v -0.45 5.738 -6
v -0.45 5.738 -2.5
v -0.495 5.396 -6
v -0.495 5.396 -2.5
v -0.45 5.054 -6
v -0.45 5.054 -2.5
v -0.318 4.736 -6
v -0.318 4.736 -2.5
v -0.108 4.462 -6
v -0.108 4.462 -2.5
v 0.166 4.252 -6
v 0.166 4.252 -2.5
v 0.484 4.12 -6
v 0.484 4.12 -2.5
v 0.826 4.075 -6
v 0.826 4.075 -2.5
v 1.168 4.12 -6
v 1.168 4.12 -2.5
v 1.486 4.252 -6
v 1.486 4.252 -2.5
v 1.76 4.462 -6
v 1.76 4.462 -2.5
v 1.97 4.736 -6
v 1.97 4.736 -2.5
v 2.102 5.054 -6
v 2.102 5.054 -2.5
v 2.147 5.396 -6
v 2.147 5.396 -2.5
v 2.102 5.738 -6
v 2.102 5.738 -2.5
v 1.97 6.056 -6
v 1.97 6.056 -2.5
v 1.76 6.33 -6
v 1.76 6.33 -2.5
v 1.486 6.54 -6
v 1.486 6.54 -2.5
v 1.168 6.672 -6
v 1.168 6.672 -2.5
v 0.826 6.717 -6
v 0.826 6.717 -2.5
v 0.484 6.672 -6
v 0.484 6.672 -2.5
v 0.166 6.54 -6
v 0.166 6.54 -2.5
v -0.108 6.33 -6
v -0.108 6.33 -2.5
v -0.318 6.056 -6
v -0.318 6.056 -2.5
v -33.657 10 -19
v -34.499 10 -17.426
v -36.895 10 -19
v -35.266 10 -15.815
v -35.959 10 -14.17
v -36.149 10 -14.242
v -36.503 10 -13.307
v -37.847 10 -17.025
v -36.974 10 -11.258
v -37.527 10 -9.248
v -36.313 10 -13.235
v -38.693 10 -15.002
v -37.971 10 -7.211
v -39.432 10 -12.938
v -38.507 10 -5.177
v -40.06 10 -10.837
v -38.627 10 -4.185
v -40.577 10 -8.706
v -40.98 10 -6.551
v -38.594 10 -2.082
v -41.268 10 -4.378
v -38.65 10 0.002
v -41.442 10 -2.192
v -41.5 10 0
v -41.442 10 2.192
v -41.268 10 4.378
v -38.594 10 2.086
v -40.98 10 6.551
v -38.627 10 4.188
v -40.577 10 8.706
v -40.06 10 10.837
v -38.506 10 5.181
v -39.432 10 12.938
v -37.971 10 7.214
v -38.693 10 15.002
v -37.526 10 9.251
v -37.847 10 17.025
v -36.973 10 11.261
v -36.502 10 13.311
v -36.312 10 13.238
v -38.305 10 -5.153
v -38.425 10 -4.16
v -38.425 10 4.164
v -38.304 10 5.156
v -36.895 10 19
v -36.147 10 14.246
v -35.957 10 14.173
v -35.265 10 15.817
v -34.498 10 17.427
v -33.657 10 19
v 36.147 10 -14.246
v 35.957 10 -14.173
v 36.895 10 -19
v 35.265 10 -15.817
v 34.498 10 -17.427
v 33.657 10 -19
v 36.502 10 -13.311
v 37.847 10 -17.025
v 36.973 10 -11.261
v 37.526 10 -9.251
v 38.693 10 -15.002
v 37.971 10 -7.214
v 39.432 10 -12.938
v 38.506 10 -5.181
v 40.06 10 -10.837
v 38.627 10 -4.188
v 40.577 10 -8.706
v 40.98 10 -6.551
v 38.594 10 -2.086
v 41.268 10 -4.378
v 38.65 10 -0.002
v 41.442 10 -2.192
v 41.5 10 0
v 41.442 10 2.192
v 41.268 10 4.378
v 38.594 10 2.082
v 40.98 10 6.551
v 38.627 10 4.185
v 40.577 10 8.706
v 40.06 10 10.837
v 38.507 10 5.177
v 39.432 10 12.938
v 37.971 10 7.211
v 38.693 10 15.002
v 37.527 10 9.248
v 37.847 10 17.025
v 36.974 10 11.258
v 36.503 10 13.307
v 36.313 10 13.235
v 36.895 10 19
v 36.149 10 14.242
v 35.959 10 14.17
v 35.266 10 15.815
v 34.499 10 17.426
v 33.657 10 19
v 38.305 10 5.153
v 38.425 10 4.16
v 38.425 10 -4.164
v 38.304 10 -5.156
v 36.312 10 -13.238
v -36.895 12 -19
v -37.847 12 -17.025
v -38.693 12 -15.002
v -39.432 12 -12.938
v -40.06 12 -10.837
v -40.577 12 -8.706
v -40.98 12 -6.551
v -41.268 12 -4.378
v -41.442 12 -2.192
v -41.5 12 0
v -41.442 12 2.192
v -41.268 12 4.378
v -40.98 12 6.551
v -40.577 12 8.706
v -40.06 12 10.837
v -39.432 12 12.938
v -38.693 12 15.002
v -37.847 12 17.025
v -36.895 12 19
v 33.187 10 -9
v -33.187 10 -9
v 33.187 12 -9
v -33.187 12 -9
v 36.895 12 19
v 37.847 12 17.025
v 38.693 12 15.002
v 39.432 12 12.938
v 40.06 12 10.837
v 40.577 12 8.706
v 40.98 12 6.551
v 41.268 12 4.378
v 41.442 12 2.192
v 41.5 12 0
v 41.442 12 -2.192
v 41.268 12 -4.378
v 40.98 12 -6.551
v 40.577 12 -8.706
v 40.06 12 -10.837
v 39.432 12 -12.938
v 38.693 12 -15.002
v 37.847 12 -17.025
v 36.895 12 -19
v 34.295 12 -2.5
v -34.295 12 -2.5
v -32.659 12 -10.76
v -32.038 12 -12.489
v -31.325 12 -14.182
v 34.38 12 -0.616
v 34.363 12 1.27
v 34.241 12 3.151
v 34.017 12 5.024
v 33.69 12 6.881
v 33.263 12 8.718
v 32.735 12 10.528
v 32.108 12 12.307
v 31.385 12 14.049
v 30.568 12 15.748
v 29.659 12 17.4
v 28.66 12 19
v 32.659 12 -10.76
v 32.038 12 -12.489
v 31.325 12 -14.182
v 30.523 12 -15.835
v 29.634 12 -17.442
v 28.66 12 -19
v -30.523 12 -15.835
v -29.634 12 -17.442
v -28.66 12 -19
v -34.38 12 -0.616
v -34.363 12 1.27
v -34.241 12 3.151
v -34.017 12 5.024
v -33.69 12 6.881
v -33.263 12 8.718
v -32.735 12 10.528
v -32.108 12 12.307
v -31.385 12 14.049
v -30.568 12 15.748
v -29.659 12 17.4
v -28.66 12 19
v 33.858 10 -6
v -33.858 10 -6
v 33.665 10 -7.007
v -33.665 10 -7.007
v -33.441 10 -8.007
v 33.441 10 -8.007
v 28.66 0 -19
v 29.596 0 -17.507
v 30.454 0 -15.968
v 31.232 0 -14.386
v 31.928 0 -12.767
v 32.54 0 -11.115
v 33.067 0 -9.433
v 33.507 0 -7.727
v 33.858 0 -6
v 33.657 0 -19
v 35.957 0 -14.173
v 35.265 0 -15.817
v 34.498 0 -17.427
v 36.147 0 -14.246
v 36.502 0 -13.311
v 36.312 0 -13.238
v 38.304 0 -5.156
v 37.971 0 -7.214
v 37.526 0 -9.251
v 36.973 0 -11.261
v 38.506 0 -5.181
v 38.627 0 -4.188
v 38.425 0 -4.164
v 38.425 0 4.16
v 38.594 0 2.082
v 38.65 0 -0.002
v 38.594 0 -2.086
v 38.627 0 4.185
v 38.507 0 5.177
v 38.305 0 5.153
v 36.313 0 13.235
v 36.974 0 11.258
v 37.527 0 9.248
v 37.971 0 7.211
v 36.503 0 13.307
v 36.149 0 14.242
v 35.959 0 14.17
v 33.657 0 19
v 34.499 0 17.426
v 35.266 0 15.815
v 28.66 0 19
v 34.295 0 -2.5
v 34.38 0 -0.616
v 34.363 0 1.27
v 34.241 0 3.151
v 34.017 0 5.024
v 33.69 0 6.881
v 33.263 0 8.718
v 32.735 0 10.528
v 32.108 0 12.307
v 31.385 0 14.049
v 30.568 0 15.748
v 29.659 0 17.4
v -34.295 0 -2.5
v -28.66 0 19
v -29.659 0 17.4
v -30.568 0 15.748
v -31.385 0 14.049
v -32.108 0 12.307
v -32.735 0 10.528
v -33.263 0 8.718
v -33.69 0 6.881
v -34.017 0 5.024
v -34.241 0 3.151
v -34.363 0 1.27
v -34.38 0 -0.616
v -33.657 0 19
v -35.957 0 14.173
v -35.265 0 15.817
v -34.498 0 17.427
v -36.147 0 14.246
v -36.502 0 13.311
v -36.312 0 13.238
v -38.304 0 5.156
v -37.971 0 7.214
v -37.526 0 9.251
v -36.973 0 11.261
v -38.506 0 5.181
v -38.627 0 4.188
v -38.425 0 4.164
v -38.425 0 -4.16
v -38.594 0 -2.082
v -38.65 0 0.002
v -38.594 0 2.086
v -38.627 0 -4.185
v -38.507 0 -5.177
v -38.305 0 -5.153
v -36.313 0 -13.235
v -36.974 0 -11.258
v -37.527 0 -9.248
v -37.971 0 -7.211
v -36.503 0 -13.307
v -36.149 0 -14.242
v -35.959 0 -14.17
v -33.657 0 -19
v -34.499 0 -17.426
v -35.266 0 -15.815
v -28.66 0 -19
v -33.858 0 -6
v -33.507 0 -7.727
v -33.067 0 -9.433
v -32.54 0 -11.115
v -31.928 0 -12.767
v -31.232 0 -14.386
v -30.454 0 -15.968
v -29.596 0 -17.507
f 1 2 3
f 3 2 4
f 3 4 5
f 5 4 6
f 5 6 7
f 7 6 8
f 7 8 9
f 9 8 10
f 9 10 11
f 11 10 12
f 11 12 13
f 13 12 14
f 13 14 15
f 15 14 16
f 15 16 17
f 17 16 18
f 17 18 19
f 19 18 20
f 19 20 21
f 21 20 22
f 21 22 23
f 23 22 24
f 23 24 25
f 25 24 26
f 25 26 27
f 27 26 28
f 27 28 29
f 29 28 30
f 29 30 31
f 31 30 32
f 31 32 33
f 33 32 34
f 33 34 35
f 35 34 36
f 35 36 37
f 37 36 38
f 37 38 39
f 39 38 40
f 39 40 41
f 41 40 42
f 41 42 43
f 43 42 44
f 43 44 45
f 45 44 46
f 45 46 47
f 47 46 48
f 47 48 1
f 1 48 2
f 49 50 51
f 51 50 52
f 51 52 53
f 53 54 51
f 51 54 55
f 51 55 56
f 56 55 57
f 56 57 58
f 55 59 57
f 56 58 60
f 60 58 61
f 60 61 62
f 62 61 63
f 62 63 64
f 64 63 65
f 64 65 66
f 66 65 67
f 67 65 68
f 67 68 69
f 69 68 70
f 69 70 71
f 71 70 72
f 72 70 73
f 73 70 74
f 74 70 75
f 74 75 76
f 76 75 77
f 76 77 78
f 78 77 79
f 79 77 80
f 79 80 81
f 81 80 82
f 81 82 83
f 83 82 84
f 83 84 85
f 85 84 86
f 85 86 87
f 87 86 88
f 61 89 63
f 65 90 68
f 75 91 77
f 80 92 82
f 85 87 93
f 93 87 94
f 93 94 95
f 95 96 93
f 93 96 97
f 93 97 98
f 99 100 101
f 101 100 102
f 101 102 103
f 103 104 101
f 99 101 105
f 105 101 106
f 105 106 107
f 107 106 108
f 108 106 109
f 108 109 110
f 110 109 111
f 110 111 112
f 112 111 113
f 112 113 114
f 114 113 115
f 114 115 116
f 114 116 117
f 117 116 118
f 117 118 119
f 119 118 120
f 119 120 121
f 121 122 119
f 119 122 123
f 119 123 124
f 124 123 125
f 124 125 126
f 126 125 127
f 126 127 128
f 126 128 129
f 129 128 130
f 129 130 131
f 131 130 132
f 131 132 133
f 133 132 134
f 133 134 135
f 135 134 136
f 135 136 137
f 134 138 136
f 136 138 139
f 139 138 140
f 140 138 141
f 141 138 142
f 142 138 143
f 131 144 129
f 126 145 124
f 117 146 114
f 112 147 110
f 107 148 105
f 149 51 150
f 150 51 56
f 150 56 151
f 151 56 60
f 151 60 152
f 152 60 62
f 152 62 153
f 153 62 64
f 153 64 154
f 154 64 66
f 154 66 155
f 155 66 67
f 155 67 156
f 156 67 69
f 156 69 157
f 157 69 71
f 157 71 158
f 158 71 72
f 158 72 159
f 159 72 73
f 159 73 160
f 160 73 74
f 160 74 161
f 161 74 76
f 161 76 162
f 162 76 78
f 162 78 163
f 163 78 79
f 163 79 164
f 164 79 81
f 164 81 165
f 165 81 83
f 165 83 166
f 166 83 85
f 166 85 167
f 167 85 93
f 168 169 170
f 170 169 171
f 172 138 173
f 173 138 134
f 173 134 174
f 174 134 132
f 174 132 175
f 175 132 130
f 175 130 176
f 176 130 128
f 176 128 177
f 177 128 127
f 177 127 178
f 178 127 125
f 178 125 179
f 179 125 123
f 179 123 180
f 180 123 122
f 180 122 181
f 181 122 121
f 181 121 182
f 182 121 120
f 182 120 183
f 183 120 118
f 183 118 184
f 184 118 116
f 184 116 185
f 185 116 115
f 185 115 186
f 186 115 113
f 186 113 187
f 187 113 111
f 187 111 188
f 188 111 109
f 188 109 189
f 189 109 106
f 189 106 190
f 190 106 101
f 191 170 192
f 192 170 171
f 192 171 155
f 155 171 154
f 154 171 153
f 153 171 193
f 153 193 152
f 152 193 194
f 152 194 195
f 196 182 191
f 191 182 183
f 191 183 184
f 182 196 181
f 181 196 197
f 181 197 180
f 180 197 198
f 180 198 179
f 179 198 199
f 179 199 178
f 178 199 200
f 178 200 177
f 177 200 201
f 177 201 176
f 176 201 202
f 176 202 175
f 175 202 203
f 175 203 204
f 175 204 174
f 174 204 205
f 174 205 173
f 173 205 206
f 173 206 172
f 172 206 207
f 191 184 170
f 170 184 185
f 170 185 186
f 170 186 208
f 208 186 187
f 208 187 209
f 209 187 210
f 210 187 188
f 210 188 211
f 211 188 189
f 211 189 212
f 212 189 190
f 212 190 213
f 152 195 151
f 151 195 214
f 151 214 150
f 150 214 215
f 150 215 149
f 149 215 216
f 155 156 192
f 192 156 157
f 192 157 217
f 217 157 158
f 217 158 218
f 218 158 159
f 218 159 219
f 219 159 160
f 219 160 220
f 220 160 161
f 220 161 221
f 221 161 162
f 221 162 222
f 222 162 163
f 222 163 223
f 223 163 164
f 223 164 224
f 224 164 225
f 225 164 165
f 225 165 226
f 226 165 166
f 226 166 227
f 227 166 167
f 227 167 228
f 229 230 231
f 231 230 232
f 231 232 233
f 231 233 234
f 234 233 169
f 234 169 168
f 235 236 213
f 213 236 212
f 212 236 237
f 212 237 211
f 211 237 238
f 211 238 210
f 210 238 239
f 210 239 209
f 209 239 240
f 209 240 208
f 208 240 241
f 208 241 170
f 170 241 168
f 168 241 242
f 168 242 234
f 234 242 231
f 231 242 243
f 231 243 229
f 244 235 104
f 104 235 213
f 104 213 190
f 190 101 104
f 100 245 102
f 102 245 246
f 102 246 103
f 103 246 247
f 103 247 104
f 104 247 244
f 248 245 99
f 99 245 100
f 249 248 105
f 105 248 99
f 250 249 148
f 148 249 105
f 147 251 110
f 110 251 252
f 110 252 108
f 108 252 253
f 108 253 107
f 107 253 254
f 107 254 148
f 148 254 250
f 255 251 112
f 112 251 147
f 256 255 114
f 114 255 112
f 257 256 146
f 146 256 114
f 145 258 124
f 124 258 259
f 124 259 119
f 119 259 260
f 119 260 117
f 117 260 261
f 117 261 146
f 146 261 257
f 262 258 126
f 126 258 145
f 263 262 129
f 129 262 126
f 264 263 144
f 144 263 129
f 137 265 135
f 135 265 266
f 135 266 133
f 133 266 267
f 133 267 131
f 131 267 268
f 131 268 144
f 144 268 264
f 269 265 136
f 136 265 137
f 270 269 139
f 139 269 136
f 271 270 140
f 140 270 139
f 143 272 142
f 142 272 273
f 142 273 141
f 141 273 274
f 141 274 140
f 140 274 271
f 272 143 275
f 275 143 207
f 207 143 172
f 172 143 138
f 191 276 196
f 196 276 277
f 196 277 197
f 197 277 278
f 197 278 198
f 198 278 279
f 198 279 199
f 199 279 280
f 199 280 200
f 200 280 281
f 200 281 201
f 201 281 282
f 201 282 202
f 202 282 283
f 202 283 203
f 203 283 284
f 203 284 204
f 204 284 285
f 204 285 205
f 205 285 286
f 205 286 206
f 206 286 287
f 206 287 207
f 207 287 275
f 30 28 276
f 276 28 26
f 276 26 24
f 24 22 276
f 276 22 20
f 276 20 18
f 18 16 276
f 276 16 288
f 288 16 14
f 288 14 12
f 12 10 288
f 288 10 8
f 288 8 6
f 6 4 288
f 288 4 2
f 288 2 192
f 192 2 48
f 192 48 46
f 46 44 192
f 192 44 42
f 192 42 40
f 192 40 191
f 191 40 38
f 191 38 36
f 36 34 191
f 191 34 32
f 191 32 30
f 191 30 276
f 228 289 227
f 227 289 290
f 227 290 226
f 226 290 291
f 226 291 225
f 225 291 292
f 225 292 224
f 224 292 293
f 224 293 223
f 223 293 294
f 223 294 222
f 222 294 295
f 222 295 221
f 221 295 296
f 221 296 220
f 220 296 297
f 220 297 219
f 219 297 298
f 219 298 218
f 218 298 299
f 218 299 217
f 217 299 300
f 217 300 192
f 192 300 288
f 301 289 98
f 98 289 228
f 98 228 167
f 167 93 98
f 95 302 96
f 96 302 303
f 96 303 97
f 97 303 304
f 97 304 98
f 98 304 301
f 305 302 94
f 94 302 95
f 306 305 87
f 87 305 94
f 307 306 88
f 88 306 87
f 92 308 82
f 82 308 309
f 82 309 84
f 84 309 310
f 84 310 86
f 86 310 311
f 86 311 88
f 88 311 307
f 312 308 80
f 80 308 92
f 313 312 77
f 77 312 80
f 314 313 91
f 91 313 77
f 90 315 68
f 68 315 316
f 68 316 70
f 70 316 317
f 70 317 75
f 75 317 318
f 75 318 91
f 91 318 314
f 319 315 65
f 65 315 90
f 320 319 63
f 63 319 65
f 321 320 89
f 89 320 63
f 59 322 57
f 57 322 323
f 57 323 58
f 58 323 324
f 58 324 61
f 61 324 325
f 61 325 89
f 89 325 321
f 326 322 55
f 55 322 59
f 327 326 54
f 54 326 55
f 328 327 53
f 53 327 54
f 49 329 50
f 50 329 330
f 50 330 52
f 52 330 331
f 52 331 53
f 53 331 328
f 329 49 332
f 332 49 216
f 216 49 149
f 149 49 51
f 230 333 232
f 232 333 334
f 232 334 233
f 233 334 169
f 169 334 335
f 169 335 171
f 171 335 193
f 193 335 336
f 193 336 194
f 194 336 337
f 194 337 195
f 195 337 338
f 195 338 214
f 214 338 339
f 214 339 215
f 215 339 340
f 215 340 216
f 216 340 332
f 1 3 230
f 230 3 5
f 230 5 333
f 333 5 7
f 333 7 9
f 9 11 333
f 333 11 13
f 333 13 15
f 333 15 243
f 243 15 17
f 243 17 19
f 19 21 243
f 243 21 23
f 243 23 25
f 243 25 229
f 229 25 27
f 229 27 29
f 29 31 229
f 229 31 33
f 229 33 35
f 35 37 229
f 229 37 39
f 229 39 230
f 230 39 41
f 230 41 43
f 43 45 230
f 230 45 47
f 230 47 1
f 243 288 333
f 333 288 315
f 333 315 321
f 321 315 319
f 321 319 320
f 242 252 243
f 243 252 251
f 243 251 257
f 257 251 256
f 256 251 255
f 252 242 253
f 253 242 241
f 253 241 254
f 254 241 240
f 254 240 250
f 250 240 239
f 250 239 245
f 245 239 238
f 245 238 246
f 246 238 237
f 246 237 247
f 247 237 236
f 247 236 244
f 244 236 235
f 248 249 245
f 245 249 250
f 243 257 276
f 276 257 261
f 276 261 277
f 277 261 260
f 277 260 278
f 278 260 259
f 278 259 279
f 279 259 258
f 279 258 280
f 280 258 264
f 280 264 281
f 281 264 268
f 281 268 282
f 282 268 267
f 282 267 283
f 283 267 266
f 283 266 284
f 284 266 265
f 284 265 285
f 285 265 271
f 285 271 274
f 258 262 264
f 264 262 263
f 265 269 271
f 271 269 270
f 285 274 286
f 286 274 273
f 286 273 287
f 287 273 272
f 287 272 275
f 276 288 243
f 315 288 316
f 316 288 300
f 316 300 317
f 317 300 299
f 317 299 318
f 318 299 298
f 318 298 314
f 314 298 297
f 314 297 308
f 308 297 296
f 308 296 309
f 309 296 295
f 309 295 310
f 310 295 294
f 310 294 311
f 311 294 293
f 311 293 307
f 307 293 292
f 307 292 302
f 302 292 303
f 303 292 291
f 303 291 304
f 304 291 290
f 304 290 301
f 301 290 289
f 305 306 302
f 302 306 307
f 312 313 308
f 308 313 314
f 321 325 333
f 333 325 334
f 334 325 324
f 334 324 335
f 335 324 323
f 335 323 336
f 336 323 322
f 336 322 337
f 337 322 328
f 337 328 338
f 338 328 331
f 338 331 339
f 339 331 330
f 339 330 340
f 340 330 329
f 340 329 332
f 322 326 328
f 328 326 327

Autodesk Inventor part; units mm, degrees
ref_plane "YZ Plane" through (0, 0, 0) normal (1, 0, 0) x (0, 1, 0)
ref_plane "XZ Plane" through (0, 0, 0) normal (0, 1, 0) x (-1, 0, 0)
ref_plane "XY Plane" through (0, 0, 0) normal (0, 0, 1) x (1, 0, 0)
sketch "Sketch1" plane through (0, 0, 0) normal (0, 1, 0) x (-1, 0, 0)
  line L0 (33.8585, -6) -> (-33.8585, -6)
  line L1 (-34.295, -2.5) -> (34.295, -2.5)
  line L2 (0.5017, -38.45) -> (-0.4983, -38.45)
  line L3 (-0.4983, -38.45) -> (-0.4983, -38.85)
  line L4 (-0.4983, -38.85) -> (0.5017, -38.85)
  line L5 (0.5017, -38.85) -> (0.5017, -38.45)
  line L6 (0.5017, -38.45) -> (-0.4983, -38.85) construction
  line L7 (-0.4983, -38.45) -> (0.5017, -38.85) construction
  line L8 (9.6888, -37.2126) -> (8.7179, -37.452)
  line L9 (8.7179, -37.452) -> (8.8136, -37.8403)
  line L10 (8.8136, -37.8403) -> (9.7846, -37.601)
  line L11 (9.7846, -37.601) -> (9.6888, -37.2126)
  line L12 (18.3129, -33.8126) -> (17.4274, -34.2773)
  line L13 (17.4274, -34.2773) -> (17.6133, -34.6315)
  line L14 (17.6133, -34.6315) -> (18.4987, -34.1668)
  line L15 (18.4987, -34.1668) -> (18.3129, -33.8126)
  line L16 (25.8726, -28.4475) -> (25.1241, -29.1107)
  line L17 (25.1241, -29.1107) -> (25.3893, -29.4101)
  line L18 (25.3893, -29.4101) -> (26.1379, -28.7469)
  line L19 (26.1379, -28.7469) -> (25.8726, -28.4475)
  line L20 (31.9287, -21.4292) -> (31.3607, -22.2522)
  line L21 (31.3607, -22.2522) -> (31.6899, -22.4794)
  line L22 (31.6899, -22.4794) -> (32.2579, -21.6564)
  line L23 (32.2579, -21.6564) -> (31.9287, -21.4292)
  line L24 (36.1293, -13.1654) -> (35.7747, -14.1005)
  line L25 (35.7747, -14.1005) -> (36.1487, -14.2423)
  line L26 (36.1487, -14.2423) -> (36.5033, -13.3073)
  line L27 (36.5033, -13.3073) -> (36.1293, -13.1654)
  line L28 (38.2301, -4.1366) -> (38.1096, -5.1293)
  line L29 (38.1096, -5.1293) -> (38.5067, -5.1775)
  line L30 (38.5067, -5.1775) -> (38.6272, -4.1848)
  line L31 (38.6272, -4.1848) -> (38.2301, -4.1366)
  line L32 (38.1092, 5.1327) -> (38.2297, 4.14)
  line L33 (38.2297, 4.14) -> (38.6268, 4.1882)
  line L34 (38.6268, 4.1882) -> (38.5063, 5.1809)
  line L35 (38.5063, 5.1809) -> (38.1092, 5.1327)
  line L36 (35.7735, 14.1037) -> (36.1281, 13.1687)
  line L37 (36.1281, 13.1687) -> (36.5021, 13.3105)
  line L38 (36.5021, 13.3105) -> (36.1475, 14.2455)
  line L39 (36.1475, 14.2455) -> (35.7735, 14.1037)
  line L40 (31.3587, 22.255) -> (31.9268, 21.432)
  line L41 (31.9268, 21.432) -> (32.256, 21.6592)
  line L42 (32.256, 21.6592) -> (31.6879, 22.4822)
  line L43 (31.6879, 22.4822) -> (31.3587, 22.255)
  line L44 (25.1215, 29.1129) -> (25.87, 28.4498)
  line L45 (25.87, 28.4498) -> (26.1353, 28.7492)
  line L46 (26.1353, 28.7492) -> (25.3868, 29.4123)
  line L47 (25.3868, 29.4123) -> (25.1215, 29.1129)
  line L48 (17.4244, 34.2789) -> (18.3098, 33.8142)
  line L49 (18.3098, 33.8142) -> (18.4957, 34.1684)
  line L50 (18.4957, 34.1684) -> (17.6102, 34.6331)
  line L51 (17.6102, 34.6331) -> (17.4244, 34.2789)
  line L52 (8.7145, 37.4528) -> (9.6855, 37.2135)
  line L53 (9.6855, 37.2135) -> (9.7812, 37.6018)
  line L54 (9.7812, 37.6018) -> (8.8103, 37.8412)
  line L55 (8.8103, 37.8412) -> (8.7145, 37.4528)
  line L56 (-0.5017, 38.45) -> (0.4983, 38.45)
  line L57 (0.4983, 38.45) -> (0.4983, 38.85)
  line L58 (0.4983, 38.85) -> (-0.5017, 38.85)
  line L59 (-0.5017, 38.85) -> (-0.5017, 38.45)
  line L60 (-9.6888, 37.2126) -> (-8.7179, 37.452)
  line L61 (-8.7179, 37.452) -> (-8.8136, 37.8403)
  line L62 (-8.8136, 37.8403) -> (-9.7846, 37.601)
  line L63 (-9.7846, 37.601) -> (-9.6888, 37.2126)
  line L64 (-18.3129, 33.8126) -> (-17.4274, 34.2773)
  line L65 (-17.4274, 34.2773) -> (-17.6133, 34.6315)
  line L66 (-17.6133, 34.6315) -> (-18.4987, 34.1668)
  line L67 (-18.4987, 34.1668) -> (-18.3129, 33.8126)
  line L68 (-25.8726, 28.4475) -> (-25.1241, 29.1107)
  line L69 (-25.1241, 29.1107) -> (-25.3893, 29.4101)
  line L70 (-25.3893, 29.4101) -> (-26.1379, 28.7469)
  line L71 (-26.1379, 28.7469) -> (-25.8726, 28.4475)
  line L72 (-31.9287, 21.4292) -> (-31.3607, 22.2522)
  line L73 (-31.3607, 22.2522) -> (-31.6899, 22.4794)
  line L74 (-31.6899, 22.4794) -> (-32.2579, 21.6564)
  line L75 (-32.2579, 21.6564) -> (-31.9287, 21.4292)
  line L76 (-36.1293, 13.1654) -> (-35.7747, 14.1005)
  line L77 (-35.7747, 14.1005) -> (-36.1487, 14.2423)
  line L78 (-36.1487, 14.2423) -> (-36.5033, 13.3073)
  line L79 (-36.5033, 13.3073) -> (-36.1293, 13.1654)
  line L80 (-38.2301, 4.1366) -> (-38.1096, 5.1293)
  line L81 (-38.1096, 5.1293) -> (-38.5067, 5.1775)
  line L82 (-38.5067, 5.1775) -> (-38.6272, 4.1848)
  line L83 (-38.6272, 4.1848) -> (-38.2301, 4.1366)
  line L84 (-38.1092, -5.1327) -> (-38.2297, -4.14)
  line L85 (-38.2297, -4.14) -> (-38.6268, -4.1882)
  line L86 (-38.6268, -4.1882) -> (-38.5063, -5.1809)
  line L87 (-38.5063, -5.1809) -> (-38.1092, -5.1327)
  line L88 (-35.7735, -14.1037) -> (-36.1281, -13.1687)
  line L89 (-36.1281, -13.1687) -> (-36.5021, -13.3105)
  line L90 (-36.5021, -13.3105) -> (-36.1475, -14.2455)
  line L91 (-36.1475, -14.2455) -> (-35.7735, -14.1037)
  line L92 (-31.3587, -22.255) -> (-31.9268, -21.432)
  line L93 (-31.9268, -21.432) -> (-32.256, -21.6592)
  line L94 (-32.256, -21.6592) -> (-31.6879, -22.4822)
  line L95 (-31.6879, -22.4822) -> (-31.3587, -22.255)
  line L96 (-25.1215, -29.1129) -> (-25.87, -28.4498)
  line L97 (-25.87, -28.4498) -> (-26.1353, -28.7492)
  line L98 (-26.1353, -28.7492) -> (-25.3868, -29.4123)
  line L99 (-25.3868, -29.4123) -> (-25.1215, -29.1129)
  line L100 (-17.4244, -34.2789) -> (-18.3098, -33.8142)
  line L101 (-18.3098, -33.8142) -> (-18.4957, -34.1684)
  line L102 (-18.4957, -34.1684) -> (-17.6102, -34.6331)
  line L103 (-17.6102, -34.6331) -> (-17.4244, -34.2789)
  line L104 (-8.7145, -37.4528) -> (-9.6855, -37.2135)
  line L105 (-9.6855, -37.2135) -> (-9.7812, -37.6018)
  line L106 (-9.7812, -37.6018) -> (-8.8103, -37.8412)
  line L107 (-8.8103, -37.8412) -> (-8.7145, -37.4528)
  arc A0 (-33.6574, 19) -> (32.0907, -21.5409) centre (0, 0) ccw
  arc A1 (33.6574, -19) -> (33.6574, 19) centre (0, 0) ccw
  arc A2 (32.0887, 21.5438) -> (-32.0907, 21.5409) centre (0, 0) ccw
  line L108 (36.1642, -3.8857) -> (36.1642, -3.8892)
  line L109 (36.1642, -4.8931) -> (36.1642, -4.8965)
  line L110 (-34.9312, -4.7468) -> (-34.9312, -4.7433)
  line L111 (-34.9312, -3.7395) -> (-34.9312, -3.736)
  line L112 (33.6574, -19) -> (28.66, -19)
  line L113 (-28.66, -19) -> (-33.6574, -19)
  line L114 (-33.6574, 19) -> (-28.66, 19)
  line L115 (28.66, 19) -> (33.6574, 19)
  arc A3 (28.66, -19) -> (33.8585, -6) centre (0, 0) ccw
  arc A4 (34.295, -2.5) -> (28.66, 19) centre (0, 0) ccw
  arc A5 (-28.66, 19) -> (-34.295, -2.5) centre (0, 0) ccw
  arc A6 (-33.8585, -6) -> (-28.66, -19) centre (0, 0) ccw
  point P0 (0.0017, -38.65)
  point P1 (35.9587, -14.1702)
  point P2 (36.3132, -13.2352)
  point P3 (38.3049, -5.153)
  point P4 (38.4254, -4.1603)
  point P5 (38.4251, 4.1637)
  point P6 (38.3045, 5.1564)
  point P7 (36.3121, 13.2384)
  point P8 (35.9574, 14.1734)
  point P9 (-35.9587, 14.1702)
  point P10 (-36.3132, 13.2352)
  point P11 (-38.3049, 5.153)
  point P12 (-38.4254, 4.1603)
  point P13 (-38.4251, -4.1637)
  point P14 (-38.3045, -5.1564)
  point P15 (-36.3121, -13.2384)
  point P16 (-35.9574, -14.1734)
  dimension "d2" = 2.5
  dimension "d3" = 3.5
  dimension "d10" = 1
  dimension "d11" = 0.4
  dimension "d14" = 360
  dimension "d18" = 38.65
  dimension "d19" = 4.9974
extrude "Extrusion1" add sketch "Sketch1" along normal blind 10 contours L0 A6 L113 A0 L91 L88 L89 L87 L84 L85 L83 L80 L81 L79 L76 L77 L114 A5 L1 A4 L115 A1 L39 L36 L37 L35 L32 L33 L31 L28 L29 L27 L24 L25 L112 A3 | A1 L27 L26 L25 | L25 L24 L27 A1 | A0 L89 L88 L91 | L91 L90 L89 A0 | A1 L31 L30 L29 | L29 L28 L31 A1 | A0 L85 L84 L87 | L87 L86 L85 A0 | A1 L35 L34 L33 | L33 L32 L35 A1 | A0 L81 L80 L83 | L83 L82 L81 A0 | A1 L39 L38 L37 | L37 L36 L39 A1 | A0 L77 L76 L79 | L79 L78 L77 A0
sketch "Sketch2" plane through (0, 10, 0) normal (0, 1, 0) x (1, 0, 0)
  arc A0 (33.8585, 6) -> (28.66, 19) centre (0, 0) ccw projected
  line L0 (34.295, 2.5) -> (-34.295, 2.5)
  line L1 (-3.804, 9) -> (7.0469, 9)
  line L2 (33.1873, 9) -> (-33.1873, 9)
  line L3 (-28.66, 19) -> (-33.6574, 19) projected
  line L4 (-33.6574, -19) -> (-28.66, -19) projected
  line L5 (-28.66, -19) -> (-36.8951, -19)
  arc A1 (-34.295, 2.5) -> (-28.66, -19) centre (0, 0) ccw
  arc A2 (28.66, -19) -> (34.295, 2.5) centre (0, 0) ccw
  arc A3 (36.8951, -19) -> (36.8951, 19) centre (0, 0) ccw
  arc A4 (-36.8951, 19) -> (-36.8951, -19) centre (0, 0) ccw
  arc A5 (33.1873, 9) -> (28.66, 19) centre (0, 0) ccw
  arc A6 (-28.66, 19) -> (-33.1873, 9) centre (0, 0) ccw
  line L6 (36.8951, 19) -> (28.66, 19)
  line L7 (-28.66, 19) -> (-36.8951, 19)
  line L8 (-31.7819, -19) -> (-28.66, -19)
  line L9 (28.66, -19) -> (36.8951, -19)
  line L10 (-30.5962, 19) -> (-28.66, 19)
  line L11 (28.66, 19) -> (36.8951, 19)
  point P0 (28.66, 19)
  point P1 (7.0469, 9)
  dimension "d24" = 41.5
  dimension "d25" = 6.5
extrude "Extrusion2" add sketch "Sketch2" along normal blind 2
sketch "Sketch3" plane through (-34.295, 0, -2.5) normal (0, 0, 1) x (1, 0, 0)
  line L0 (0, 12) -> (68.59, 12) projected
  line L1 (0, 0) -> (0, 12) projected
  point P0 (34.295, 0)
  point P1 (35.121, 5.396)
  dimension "d28" = 6.604
  dimension "d29" = 35.121
hole "Hole1" at (0.826, 5.396, -2.5) direction (0, 0, -1) diameter 2.6416 depth 10.979 thread size "6-32 UNC" class "2B" standard "ANSI Unified Screw Threads"
properties part number "AQS_Mount_3DPrint"
